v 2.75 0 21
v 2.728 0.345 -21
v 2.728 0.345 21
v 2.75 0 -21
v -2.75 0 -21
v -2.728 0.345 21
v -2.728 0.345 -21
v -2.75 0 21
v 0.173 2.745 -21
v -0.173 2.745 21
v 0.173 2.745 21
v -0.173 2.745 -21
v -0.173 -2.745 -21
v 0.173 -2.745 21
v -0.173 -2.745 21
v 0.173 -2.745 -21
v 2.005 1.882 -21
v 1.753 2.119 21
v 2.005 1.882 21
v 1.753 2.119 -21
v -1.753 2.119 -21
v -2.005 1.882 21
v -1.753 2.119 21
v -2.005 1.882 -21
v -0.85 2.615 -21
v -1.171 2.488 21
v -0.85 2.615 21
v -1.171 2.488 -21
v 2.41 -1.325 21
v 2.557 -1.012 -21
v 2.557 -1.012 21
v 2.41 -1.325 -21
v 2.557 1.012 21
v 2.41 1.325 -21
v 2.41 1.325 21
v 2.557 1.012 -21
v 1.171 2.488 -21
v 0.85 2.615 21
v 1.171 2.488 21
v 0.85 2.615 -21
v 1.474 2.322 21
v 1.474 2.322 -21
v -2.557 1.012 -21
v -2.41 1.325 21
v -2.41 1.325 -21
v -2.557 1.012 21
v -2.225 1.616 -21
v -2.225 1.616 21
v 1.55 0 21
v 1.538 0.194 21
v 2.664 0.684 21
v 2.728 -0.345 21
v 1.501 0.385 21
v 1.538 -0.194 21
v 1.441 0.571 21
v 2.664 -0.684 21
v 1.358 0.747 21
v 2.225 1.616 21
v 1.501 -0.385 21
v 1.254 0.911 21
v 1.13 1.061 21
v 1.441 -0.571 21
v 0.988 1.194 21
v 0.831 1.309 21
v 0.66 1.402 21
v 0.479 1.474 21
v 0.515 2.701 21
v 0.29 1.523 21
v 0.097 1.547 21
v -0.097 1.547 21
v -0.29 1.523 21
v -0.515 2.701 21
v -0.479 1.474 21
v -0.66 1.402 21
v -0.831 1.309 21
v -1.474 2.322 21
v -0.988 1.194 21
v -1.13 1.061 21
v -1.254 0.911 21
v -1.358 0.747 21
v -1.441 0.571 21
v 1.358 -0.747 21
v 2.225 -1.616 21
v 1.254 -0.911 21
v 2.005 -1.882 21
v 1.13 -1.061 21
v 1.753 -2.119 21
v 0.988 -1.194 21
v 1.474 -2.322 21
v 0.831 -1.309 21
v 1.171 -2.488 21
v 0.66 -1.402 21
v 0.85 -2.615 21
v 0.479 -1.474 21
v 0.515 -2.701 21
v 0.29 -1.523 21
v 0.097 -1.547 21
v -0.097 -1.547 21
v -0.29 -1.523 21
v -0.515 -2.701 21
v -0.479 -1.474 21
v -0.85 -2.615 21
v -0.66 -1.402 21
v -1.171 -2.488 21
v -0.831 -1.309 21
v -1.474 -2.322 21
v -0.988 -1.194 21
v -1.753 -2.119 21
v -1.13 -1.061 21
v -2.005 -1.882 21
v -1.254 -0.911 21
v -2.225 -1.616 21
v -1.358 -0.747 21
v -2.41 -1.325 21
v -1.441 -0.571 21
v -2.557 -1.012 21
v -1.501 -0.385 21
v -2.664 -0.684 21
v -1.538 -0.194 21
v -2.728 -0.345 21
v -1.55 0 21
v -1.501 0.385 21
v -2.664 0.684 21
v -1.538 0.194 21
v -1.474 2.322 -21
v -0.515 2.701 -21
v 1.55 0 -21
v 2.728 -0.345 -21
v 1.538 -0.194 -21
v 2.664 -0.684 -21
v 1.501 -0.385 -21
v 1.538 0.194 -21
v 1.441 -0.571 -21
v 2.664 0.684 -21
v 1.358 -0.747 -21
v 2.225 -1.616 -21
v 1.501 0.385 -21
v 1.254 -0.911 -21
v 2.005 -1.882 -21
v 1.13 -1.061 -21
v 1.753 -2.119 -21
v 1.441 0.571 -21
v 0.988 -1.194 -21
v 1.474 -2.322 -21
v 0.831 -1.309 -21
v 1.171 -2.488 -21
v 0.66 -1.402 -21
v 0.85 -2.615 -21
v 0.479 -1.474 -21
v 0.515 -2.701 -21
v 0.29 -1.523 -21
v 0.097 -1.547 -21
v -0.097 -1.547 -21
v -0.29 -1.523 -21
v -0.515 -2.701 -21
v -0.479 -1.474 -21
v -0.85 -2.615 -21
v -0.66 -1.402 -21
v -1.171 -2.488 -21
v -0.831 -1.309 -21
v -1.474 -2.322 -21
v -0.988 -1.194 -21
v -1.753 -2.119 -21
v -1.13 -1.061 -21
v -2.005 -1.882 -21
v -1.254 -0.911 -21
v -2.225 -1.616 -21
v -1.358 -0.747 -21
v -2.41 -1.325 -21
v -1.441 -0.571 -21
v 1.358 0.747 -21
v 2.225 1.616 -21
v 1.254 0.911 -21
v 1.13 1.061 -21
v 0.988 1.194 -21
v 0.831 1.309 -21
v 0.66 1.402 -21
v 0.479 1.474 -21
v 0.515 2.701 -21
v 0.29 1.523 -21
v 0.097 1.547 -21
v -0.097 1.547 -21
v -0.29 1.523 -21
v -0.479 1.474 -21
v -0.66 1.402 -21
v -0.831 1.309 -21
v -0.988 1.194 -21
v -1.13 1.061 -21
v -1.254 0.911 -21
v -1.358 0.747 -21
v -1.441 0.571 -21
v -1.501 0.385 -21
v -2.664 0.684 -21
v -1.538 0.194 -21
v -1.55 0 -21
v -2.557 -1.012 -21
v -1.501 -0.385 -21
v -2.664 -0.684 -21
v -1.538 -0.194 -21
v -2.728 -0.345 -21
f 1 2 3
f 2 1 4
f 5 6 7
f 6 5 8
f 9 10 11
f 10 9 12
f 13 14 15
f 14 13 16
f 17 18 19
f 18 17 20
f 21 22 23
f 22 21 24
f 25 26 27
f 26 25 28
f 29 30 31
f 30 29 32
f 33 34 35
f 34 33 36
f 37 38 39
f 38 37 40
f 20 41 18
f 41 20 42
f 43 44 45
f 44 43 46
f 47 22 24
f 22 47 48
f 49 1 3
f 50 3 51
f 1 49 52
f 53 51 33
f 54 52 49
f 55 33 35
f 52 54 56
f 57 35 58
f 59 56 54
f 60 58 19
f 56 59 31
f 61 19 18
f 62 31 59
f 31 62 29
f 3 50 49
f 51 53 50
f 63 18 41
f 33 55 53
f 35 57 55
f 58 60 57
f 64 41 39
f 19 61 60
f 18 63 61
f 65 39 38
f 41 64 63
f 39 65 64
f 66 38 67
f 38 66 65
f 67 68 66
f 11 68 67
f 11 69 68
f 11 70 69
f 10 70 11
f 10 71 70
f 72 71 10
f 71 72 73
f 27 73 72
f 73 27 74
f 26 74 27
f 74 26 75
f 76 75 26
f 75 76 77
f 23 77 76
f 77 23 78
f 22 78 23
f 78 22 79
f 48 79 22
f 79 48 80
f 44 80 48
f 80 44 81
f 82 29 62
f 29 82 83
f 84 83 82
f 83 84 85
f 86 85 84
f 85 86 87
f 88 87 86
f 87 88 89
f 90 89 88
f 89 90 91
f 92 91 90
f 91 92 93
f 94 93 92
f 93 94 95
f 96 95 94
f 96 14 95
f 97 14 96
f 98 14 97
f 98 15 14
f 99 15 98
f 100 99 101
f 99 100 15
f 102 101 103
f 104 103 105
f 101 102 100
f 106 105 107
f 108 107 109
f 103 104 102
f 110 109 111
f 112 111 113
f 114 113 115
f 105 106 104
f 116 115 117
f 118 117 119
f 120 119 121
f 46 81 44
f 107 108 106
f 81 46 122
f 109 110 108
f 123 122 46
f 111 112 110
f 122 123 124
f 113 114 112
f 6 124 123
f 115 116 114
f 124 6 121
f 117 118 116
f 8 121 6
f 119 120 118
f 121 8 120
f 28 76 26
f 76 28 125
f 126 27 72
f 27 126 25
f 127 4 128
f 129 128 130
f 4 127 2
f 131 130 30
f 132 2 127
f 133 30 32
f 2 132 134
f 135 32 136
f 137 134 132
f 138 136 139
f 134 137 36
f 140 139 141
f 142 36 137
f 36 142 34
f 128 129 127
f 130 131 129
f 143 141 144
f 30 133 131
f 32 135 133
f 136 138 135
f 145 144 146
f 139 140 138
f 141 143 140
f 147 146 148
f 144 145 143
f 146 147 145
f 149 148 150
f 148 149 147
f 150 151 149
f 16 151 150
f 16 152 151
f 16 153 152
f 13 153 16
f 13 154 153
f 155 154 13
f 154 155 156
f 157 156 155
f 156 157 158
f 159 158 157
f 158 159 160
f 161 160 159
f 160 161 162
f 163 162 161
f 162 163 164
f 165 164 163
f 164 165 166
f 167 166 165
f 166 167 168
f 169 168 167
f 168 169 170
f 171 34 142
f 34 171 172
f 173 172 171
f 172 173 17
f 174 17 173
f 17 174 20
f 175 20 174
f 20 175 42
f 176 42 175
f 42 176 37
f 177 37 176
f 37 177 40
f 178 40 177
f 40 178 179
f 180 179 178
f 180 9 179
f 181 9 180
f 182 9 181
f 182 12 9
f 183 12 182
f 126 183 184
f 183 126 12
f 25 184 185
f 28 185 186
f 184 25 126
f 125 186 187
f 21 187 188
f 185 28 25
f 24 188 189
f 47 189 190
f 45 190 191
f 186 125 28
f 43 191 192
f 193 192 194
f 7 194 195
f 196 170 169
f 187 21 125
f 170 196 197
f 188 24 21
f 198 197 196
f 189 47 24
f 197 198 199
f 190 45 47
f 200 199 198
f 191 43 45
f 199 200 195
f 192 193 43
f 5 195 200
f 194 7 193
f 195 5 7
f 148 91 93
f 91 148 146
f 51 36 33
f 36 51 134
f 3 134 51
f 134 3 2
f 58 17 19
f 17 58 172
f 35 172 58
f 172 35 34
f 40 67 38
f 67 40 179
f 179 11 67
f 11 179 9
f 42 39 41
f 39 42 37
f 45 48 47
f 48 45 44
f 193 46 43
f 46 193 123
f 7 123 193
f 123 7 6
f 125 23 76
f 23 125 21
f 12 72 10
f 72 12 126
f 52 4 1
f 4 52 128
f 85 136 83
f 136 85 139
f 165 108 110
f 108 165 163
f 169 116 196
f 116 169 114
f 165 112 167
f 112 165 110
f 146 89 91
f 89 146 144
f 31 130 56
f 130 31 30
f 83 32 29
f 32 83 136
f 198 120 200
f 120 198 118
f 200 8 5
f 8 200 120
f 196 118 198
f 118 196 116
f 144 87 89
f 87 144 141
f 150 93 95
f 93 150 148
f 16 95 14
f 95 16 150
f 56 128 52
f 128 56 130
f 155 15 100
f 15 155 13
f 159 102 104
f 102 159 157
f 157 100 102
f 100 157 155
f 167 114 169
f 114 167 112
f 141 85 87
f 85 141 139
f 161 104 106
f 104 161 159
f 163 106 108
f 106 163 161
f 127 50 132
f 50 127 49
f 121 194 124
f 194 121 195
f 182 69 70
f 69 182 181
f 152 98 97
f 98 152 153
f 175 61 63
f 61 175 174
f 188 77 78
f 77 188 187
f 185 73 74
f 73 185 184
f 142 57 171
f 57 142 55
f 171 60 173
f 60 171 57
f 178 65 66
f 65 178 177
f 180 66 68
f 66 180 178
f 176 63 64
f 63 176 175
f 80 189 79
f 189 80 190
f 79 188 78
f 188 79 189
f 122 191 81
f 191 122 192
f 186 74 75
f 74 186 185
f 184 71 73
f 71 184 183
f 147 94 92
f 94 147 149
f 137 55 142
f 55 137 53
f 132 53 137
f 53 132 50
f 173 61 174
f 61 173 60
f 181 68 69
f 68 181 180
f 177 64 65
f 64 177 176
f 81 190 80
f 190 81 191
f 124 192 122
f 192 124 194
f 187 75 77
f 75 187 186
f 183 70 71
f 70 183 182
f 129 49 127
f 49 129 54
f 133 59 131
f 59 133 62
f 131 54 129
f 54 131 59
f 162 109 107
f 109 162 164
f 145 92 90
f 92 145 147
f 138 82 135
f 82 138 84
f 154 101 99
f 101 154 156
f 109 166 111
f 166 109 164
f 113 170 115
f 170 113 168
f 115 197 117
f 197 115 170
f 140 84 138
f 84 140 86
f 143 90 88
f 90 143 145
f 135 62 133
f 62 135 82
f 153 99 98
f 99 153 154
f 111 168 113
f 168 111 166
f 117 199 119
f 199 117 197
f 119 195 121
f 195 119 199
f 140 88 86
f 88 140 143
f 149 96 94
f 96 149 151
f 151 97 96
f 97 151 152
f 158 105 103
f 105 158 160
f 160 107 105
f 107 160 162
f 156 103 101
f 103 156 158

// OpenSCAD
$fn = 50;


difference() {
	union() {
		translate(v = [0, 0, -21.0000000000]) {
			cylinder(h = 42, r = 2.7500000000);
		}
	}
	union() {
		translate(v = [0, 0, -100.0000000000]) {
			cylinder(h = 200, r = 1.5500000000);
		}
	}
}
